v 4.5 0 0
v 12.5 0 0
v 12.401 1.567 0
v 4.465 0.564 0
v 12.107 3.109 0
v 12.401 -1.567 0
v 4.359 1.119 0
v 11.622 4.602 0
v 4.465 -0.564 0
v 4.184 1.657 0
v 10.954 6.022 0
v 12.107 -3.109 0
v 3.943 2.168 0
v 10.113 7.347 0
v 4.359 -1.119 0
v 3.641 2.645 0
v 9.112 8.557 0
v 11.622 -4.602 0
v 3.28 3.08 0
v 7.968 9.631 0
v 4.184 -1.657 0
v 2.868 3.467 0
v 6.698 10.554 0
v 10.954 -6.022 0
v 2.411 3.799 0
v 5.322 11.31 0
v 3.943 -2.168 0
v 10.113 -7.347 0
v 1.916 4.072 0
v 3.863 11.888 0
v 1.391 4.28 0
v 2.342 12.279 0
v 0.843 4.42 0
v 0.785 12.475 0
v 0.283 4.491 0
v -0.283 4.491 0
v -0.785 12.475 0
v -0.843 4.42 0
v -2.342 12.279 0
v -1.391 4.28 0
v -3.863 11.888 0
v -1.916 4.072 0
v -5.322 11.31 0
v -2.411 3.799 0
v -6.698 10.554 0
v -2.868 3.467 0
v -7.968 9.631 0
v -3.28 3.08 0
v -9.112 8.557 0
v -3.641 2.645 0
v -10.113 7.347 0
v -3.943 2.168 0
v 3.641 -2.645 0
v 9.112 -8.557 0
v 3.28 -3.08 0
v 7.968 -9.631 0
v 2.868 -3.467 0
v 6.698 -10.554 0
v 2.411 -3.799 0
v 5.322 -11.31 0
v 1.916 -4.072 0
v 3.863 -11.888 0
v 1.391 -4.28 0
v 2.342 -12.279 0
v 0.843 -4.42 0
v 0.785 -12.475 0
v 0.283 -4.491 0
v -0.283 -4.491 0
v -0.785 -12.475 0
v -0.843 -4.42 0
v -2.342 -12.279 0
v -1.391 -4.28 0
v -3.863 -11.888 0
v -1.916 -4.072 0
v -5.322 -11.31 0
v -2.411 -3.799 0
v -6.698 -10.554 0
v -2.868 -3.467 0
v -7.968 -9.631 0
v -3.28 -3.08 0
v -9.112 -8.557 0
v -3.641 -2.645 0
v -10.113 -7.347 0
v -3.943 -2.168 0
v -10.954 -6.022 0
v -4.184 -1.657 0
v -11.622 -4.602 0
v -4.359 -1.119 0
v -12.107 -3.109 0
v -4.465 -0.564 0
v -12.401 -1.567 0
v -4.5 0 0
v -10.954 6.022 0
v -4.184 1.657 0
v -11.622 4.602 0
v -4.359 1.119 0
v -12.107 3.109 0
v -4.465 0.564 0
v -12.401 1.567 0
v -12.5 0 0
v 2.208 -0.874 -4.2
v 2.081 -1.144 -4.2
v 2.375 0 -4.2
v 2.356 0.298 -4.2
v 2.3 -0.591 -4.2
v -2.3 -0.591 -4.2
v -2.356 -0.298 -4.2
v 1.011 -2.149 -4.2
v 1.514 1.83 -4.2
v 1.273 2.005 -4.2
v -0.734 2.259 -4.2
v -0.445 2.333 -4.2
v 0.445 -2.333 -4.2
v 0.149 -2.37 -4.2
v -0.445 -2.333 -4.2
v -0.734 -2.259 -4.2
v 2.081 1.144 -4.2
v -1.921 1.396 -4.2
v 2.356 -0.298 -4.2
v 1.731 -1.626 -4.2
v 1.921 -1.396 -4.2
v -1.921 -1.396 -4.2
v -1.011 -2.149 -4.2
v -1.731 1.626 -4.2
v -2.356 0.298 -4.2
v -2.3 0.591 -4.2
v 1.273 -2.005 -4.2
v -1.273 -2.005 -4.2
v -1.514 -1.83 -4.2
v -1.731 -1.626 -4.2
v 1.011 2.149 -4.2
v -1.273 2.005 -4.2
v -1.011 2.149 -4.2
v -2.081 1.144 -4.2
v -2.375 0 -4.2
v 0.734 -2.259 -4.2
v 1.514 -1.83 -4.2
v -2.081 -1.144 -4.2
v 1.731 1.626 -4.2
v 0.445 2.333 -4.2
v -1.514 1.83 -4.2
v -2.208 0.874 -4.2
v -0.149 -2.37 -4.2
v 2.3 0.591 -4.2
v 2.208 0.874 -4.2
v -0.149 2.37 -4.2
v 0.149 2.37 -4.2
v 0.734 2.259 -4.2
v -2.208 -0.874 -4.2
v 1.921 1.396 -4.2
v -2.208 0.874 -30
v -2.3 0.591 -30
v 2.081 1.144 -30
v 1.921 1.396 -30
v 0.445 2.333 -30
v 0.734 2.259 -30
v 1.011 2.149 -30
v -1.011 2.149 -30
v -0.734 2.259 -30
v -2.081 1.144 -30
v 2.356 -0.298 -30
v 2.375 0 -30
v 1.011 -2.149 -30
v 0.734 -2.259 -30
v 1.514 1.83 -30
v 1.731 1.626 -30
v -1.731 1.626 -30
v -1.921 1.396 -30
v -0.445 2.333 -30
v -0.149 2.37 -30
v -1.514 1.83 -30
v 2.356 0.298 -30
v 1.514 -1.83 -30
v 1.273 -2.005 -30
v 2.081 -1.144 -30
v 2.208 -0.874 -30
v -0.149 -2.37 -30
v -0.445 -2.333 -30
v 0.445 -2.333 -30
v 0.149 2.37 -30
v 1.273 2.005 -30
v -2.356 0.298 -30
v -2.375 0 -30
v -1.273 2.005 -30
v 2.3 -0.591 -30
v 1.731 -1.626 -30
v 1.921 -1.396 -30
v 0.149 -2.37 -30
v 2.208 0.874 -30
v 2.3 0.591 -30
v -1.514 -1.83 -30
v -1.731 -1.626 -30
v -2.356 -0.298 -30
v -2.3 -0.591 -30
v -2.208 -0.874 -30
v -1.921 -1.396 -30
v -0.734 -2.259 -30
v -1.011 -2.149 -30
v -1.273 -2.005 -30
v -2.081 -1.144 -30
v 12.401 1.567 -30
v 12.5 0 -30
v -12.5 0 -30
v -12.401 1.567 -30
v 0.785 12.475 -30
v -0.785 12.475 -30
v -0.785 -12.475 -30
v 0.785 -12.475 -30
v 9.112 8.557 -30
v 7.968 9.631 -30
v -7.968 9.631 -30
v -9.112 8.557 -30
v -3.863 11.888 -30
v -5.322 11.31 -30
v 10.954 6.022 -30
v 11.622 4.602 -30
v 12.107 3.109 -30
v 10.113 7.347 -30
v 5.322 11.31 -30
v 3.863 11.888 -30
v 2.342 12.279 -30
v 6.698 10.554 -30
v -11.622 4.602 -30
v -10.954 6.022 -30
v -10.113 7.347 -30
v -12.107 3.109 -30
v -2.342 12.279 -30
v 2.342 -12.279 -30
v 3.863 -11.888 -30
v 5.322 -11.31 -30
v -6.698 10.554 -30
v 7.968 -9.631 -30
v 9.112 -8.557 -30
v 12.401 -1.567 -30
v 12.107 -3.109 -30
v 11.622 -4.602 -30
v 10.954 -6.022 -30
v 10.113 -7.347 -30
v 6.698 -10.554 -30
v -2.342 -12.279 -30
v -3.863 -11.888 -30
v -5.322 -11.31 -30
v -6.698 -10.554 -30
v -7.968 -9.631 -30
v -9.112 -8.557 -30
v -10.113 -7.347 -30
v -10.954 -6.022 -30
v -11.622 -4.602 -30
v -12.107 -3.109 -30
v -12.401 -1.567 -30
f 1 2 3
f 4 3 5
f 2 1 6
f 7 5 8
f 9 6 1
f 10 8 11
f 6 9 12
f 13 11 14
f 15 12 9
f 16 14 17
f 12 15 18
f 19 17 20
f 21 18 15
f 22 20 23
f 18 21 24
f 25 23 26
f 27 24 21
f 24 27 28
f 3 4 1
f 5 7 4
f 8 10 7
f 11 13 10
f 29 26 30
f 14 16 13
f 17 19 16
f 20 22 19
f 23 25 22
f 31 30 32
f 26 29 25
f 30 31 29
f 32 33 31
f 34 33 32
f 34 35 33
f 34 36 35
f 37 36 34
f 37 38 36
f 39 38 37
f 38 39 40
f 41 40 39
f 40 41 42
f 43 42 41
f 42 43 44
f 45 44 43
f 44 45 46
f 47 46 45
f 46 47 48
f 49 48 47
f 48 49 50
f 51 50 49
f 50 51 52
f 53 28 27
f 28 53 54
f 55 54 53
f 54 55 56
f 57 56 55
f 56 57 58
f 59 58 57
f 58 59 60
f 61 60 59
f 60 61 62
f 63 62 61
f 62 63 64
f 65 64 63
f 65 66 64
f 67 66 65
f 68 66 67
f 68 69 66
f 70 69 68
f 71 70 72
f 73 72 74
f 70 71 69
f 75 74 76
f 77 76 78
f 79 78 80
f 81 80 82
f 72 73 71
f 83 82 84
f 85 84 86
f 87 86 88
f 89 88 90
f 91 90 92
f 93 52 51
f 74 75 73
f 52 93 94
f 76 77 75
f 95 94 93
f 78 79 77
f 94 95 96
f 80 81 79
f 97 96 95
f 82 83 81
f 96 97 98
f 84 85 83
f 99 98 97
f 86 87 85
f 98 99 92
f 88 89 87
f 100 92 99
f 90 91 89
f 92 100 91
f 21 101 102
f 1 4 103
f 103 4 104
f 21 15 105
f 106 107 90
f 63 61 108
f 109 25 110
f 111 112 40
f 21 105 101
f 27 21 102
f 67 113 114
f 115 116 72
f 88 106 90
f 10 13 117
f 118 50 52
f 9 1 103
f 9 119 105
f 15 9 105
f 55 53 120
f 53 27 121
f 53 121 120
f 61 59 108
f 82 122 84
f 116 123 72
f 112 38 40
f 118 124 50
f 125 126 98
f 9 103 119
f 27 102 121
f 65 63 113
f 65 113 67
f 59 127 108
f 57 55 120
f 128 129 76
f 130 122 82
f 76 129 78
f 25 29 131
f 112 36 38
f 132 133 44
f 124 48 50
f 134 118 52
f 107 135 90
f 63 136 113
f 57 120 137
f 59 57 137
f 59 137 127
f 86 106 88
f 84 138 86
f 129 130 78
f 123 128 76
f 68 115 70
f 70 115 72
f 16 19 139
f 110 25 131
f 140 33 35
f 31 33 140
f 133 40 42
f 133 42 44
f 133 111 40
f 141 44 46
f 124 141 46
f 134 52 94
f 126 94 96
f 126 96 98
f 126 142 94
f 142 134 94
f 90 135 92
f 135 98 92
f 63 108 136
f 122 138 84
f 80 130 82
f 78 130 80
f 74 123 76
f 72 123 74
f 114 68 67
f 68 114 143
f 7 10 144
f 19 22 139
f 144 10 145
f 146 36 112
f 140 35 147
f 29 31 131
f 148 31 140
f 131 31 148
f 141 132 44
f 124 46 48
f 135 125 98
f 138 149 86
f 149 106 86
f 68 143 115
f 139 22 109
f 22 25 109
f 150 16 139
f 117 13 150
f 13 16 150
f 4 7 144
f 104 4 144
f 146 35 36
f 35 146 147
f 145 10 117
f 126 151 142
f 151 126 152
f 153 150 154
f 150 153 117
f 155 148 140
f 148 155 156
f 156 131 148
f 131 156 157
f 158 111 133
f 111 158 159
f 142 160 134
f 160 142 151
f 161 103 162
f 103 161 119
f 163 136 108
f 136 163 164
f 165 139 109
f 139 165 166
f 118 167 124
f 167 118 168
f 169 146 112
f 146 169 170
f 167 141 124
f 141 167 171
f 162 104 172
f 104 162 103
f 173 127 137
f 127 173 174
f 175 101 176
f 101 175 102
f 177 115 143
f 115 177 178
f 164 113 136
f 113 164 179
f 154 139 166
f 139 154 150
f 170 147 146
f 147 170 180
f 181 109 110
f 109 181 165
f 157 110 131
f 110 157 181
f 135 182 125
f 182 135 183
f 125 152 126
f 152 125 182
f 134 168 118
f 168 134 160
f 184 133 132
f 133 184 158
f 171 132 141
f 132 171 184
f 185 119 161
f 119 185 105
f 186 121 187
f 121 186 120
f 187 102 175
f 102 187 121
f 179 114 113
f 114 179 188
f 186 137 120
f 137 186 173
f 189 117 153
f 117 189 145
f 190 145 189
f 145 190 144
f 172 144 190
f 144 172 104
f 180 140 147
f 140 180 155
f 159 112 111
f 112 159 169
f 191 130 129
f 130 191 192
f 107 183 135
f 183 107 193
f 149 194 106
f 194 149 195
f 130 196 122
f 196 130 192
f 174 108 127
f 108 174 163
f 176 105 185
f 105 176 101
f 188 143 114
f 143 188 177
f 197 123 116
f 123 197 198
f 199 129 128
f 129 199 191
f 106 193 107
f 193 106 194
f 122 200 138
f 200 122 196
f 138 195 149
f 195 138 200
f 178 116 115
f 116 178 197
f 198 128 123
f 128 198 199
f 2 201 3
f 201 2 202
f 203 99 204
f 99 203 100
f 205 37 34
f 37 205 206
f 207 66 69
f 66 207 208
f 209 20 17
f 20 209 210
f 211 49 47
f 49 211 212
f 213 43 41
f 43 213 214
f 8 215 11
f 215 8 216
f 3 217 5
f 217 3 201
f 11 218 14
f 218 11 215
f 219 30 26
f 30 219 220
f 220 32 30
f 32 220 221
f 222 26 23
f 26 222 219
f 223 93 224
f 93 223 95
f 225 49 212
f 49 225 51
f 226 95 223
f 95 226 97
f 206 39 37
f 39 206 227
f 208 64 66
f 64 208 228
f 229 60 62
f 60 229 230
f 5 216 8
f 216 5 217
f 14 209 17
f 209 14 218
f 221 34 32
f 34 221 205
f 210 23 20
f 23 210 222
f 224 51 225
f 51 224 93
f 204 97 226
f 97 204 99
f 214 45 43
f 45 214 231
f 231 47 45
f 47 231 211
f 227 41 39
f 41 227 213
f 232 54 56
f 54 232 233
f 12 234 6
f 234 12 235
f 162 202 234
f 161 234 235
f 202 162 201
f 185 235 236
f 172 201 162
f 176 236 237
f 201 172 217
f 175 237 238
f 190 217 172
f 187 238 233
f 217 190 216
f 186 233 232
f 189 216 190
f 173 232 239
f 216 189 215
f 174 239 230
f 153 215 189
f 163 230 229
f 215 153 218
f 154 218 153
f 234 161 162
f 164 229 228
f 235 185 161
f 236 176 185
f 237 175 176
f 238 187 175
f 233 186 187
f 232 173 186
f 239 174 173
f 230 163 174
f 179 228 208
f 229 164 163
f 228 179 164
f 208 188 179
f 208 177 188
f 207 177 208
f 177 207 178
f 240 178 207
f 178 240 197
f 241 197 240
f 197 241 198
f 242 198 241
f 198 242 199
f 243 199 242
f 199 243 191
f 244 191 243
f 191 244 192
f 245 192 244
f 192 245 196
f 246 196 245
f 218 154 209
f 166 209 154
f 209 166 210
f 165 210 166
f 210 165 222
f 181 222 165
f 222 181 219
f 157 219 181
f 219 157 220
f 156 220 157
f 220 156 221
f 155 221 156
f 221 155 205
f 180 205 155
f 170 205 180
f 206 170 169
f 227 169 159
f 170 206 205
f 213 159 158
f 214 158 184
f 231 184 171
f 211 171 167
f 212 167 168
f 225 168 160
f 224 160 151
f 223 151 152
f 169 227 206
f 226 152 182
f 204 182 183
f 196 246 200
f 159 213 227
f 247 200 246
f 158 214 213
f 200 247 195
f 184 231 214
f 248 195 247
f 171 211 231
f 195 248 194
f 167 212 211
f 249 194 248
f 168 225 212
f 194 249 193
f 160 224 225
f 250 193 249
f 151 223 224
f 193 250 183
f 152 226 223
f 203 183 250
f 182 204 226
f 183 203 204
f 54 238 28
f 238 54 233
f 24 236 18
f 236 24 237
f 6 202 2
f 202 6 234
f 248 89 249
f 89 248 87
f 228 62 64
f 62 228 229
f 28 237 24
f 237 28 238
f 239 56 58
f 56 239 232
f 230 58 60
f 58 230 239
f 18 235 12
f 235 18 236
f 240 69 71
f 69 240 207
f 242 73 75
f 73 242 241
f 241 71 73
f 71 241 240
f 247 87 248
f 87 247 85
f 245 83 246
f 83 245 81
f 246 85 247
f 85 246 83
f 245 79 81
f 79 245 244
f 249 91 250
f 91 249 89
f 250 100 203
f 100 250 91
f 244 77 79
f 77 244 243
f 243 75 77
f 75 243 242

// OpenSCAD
$fn = 50;


difference() {
	union() {
		translate(v = [0, 0, -30.0000000000]) {
			cylinder(h = 30, r = 12.5000000000);
		}
	}
	union() {
		translate(v = [0, 0, 0]) {
			rotate(a = [0, 0, 0]) {
				difference() {
					union() {
						translate(v = [0, 0, -33.0000000000]) {
							cylinder(h = 33, r = 2.2500000000);
						}
						translate(v = [0, 0, -4.2000000000]) {
							cylinder(h = 4.2000000000, r1 = 2.3750000000, r2 = 4.5000000000);
						}
						translate(v = [0, 0, -33.0000000000]) {
							cylinder(h = 33, r = 2.3750000000);
						}
						translate(v = [0, 0, -33.0000000000]) {
							cylinder(h = 33, r = 2.2500000000);
						}
					}
					union();
				}
			}
		}
	}
}
